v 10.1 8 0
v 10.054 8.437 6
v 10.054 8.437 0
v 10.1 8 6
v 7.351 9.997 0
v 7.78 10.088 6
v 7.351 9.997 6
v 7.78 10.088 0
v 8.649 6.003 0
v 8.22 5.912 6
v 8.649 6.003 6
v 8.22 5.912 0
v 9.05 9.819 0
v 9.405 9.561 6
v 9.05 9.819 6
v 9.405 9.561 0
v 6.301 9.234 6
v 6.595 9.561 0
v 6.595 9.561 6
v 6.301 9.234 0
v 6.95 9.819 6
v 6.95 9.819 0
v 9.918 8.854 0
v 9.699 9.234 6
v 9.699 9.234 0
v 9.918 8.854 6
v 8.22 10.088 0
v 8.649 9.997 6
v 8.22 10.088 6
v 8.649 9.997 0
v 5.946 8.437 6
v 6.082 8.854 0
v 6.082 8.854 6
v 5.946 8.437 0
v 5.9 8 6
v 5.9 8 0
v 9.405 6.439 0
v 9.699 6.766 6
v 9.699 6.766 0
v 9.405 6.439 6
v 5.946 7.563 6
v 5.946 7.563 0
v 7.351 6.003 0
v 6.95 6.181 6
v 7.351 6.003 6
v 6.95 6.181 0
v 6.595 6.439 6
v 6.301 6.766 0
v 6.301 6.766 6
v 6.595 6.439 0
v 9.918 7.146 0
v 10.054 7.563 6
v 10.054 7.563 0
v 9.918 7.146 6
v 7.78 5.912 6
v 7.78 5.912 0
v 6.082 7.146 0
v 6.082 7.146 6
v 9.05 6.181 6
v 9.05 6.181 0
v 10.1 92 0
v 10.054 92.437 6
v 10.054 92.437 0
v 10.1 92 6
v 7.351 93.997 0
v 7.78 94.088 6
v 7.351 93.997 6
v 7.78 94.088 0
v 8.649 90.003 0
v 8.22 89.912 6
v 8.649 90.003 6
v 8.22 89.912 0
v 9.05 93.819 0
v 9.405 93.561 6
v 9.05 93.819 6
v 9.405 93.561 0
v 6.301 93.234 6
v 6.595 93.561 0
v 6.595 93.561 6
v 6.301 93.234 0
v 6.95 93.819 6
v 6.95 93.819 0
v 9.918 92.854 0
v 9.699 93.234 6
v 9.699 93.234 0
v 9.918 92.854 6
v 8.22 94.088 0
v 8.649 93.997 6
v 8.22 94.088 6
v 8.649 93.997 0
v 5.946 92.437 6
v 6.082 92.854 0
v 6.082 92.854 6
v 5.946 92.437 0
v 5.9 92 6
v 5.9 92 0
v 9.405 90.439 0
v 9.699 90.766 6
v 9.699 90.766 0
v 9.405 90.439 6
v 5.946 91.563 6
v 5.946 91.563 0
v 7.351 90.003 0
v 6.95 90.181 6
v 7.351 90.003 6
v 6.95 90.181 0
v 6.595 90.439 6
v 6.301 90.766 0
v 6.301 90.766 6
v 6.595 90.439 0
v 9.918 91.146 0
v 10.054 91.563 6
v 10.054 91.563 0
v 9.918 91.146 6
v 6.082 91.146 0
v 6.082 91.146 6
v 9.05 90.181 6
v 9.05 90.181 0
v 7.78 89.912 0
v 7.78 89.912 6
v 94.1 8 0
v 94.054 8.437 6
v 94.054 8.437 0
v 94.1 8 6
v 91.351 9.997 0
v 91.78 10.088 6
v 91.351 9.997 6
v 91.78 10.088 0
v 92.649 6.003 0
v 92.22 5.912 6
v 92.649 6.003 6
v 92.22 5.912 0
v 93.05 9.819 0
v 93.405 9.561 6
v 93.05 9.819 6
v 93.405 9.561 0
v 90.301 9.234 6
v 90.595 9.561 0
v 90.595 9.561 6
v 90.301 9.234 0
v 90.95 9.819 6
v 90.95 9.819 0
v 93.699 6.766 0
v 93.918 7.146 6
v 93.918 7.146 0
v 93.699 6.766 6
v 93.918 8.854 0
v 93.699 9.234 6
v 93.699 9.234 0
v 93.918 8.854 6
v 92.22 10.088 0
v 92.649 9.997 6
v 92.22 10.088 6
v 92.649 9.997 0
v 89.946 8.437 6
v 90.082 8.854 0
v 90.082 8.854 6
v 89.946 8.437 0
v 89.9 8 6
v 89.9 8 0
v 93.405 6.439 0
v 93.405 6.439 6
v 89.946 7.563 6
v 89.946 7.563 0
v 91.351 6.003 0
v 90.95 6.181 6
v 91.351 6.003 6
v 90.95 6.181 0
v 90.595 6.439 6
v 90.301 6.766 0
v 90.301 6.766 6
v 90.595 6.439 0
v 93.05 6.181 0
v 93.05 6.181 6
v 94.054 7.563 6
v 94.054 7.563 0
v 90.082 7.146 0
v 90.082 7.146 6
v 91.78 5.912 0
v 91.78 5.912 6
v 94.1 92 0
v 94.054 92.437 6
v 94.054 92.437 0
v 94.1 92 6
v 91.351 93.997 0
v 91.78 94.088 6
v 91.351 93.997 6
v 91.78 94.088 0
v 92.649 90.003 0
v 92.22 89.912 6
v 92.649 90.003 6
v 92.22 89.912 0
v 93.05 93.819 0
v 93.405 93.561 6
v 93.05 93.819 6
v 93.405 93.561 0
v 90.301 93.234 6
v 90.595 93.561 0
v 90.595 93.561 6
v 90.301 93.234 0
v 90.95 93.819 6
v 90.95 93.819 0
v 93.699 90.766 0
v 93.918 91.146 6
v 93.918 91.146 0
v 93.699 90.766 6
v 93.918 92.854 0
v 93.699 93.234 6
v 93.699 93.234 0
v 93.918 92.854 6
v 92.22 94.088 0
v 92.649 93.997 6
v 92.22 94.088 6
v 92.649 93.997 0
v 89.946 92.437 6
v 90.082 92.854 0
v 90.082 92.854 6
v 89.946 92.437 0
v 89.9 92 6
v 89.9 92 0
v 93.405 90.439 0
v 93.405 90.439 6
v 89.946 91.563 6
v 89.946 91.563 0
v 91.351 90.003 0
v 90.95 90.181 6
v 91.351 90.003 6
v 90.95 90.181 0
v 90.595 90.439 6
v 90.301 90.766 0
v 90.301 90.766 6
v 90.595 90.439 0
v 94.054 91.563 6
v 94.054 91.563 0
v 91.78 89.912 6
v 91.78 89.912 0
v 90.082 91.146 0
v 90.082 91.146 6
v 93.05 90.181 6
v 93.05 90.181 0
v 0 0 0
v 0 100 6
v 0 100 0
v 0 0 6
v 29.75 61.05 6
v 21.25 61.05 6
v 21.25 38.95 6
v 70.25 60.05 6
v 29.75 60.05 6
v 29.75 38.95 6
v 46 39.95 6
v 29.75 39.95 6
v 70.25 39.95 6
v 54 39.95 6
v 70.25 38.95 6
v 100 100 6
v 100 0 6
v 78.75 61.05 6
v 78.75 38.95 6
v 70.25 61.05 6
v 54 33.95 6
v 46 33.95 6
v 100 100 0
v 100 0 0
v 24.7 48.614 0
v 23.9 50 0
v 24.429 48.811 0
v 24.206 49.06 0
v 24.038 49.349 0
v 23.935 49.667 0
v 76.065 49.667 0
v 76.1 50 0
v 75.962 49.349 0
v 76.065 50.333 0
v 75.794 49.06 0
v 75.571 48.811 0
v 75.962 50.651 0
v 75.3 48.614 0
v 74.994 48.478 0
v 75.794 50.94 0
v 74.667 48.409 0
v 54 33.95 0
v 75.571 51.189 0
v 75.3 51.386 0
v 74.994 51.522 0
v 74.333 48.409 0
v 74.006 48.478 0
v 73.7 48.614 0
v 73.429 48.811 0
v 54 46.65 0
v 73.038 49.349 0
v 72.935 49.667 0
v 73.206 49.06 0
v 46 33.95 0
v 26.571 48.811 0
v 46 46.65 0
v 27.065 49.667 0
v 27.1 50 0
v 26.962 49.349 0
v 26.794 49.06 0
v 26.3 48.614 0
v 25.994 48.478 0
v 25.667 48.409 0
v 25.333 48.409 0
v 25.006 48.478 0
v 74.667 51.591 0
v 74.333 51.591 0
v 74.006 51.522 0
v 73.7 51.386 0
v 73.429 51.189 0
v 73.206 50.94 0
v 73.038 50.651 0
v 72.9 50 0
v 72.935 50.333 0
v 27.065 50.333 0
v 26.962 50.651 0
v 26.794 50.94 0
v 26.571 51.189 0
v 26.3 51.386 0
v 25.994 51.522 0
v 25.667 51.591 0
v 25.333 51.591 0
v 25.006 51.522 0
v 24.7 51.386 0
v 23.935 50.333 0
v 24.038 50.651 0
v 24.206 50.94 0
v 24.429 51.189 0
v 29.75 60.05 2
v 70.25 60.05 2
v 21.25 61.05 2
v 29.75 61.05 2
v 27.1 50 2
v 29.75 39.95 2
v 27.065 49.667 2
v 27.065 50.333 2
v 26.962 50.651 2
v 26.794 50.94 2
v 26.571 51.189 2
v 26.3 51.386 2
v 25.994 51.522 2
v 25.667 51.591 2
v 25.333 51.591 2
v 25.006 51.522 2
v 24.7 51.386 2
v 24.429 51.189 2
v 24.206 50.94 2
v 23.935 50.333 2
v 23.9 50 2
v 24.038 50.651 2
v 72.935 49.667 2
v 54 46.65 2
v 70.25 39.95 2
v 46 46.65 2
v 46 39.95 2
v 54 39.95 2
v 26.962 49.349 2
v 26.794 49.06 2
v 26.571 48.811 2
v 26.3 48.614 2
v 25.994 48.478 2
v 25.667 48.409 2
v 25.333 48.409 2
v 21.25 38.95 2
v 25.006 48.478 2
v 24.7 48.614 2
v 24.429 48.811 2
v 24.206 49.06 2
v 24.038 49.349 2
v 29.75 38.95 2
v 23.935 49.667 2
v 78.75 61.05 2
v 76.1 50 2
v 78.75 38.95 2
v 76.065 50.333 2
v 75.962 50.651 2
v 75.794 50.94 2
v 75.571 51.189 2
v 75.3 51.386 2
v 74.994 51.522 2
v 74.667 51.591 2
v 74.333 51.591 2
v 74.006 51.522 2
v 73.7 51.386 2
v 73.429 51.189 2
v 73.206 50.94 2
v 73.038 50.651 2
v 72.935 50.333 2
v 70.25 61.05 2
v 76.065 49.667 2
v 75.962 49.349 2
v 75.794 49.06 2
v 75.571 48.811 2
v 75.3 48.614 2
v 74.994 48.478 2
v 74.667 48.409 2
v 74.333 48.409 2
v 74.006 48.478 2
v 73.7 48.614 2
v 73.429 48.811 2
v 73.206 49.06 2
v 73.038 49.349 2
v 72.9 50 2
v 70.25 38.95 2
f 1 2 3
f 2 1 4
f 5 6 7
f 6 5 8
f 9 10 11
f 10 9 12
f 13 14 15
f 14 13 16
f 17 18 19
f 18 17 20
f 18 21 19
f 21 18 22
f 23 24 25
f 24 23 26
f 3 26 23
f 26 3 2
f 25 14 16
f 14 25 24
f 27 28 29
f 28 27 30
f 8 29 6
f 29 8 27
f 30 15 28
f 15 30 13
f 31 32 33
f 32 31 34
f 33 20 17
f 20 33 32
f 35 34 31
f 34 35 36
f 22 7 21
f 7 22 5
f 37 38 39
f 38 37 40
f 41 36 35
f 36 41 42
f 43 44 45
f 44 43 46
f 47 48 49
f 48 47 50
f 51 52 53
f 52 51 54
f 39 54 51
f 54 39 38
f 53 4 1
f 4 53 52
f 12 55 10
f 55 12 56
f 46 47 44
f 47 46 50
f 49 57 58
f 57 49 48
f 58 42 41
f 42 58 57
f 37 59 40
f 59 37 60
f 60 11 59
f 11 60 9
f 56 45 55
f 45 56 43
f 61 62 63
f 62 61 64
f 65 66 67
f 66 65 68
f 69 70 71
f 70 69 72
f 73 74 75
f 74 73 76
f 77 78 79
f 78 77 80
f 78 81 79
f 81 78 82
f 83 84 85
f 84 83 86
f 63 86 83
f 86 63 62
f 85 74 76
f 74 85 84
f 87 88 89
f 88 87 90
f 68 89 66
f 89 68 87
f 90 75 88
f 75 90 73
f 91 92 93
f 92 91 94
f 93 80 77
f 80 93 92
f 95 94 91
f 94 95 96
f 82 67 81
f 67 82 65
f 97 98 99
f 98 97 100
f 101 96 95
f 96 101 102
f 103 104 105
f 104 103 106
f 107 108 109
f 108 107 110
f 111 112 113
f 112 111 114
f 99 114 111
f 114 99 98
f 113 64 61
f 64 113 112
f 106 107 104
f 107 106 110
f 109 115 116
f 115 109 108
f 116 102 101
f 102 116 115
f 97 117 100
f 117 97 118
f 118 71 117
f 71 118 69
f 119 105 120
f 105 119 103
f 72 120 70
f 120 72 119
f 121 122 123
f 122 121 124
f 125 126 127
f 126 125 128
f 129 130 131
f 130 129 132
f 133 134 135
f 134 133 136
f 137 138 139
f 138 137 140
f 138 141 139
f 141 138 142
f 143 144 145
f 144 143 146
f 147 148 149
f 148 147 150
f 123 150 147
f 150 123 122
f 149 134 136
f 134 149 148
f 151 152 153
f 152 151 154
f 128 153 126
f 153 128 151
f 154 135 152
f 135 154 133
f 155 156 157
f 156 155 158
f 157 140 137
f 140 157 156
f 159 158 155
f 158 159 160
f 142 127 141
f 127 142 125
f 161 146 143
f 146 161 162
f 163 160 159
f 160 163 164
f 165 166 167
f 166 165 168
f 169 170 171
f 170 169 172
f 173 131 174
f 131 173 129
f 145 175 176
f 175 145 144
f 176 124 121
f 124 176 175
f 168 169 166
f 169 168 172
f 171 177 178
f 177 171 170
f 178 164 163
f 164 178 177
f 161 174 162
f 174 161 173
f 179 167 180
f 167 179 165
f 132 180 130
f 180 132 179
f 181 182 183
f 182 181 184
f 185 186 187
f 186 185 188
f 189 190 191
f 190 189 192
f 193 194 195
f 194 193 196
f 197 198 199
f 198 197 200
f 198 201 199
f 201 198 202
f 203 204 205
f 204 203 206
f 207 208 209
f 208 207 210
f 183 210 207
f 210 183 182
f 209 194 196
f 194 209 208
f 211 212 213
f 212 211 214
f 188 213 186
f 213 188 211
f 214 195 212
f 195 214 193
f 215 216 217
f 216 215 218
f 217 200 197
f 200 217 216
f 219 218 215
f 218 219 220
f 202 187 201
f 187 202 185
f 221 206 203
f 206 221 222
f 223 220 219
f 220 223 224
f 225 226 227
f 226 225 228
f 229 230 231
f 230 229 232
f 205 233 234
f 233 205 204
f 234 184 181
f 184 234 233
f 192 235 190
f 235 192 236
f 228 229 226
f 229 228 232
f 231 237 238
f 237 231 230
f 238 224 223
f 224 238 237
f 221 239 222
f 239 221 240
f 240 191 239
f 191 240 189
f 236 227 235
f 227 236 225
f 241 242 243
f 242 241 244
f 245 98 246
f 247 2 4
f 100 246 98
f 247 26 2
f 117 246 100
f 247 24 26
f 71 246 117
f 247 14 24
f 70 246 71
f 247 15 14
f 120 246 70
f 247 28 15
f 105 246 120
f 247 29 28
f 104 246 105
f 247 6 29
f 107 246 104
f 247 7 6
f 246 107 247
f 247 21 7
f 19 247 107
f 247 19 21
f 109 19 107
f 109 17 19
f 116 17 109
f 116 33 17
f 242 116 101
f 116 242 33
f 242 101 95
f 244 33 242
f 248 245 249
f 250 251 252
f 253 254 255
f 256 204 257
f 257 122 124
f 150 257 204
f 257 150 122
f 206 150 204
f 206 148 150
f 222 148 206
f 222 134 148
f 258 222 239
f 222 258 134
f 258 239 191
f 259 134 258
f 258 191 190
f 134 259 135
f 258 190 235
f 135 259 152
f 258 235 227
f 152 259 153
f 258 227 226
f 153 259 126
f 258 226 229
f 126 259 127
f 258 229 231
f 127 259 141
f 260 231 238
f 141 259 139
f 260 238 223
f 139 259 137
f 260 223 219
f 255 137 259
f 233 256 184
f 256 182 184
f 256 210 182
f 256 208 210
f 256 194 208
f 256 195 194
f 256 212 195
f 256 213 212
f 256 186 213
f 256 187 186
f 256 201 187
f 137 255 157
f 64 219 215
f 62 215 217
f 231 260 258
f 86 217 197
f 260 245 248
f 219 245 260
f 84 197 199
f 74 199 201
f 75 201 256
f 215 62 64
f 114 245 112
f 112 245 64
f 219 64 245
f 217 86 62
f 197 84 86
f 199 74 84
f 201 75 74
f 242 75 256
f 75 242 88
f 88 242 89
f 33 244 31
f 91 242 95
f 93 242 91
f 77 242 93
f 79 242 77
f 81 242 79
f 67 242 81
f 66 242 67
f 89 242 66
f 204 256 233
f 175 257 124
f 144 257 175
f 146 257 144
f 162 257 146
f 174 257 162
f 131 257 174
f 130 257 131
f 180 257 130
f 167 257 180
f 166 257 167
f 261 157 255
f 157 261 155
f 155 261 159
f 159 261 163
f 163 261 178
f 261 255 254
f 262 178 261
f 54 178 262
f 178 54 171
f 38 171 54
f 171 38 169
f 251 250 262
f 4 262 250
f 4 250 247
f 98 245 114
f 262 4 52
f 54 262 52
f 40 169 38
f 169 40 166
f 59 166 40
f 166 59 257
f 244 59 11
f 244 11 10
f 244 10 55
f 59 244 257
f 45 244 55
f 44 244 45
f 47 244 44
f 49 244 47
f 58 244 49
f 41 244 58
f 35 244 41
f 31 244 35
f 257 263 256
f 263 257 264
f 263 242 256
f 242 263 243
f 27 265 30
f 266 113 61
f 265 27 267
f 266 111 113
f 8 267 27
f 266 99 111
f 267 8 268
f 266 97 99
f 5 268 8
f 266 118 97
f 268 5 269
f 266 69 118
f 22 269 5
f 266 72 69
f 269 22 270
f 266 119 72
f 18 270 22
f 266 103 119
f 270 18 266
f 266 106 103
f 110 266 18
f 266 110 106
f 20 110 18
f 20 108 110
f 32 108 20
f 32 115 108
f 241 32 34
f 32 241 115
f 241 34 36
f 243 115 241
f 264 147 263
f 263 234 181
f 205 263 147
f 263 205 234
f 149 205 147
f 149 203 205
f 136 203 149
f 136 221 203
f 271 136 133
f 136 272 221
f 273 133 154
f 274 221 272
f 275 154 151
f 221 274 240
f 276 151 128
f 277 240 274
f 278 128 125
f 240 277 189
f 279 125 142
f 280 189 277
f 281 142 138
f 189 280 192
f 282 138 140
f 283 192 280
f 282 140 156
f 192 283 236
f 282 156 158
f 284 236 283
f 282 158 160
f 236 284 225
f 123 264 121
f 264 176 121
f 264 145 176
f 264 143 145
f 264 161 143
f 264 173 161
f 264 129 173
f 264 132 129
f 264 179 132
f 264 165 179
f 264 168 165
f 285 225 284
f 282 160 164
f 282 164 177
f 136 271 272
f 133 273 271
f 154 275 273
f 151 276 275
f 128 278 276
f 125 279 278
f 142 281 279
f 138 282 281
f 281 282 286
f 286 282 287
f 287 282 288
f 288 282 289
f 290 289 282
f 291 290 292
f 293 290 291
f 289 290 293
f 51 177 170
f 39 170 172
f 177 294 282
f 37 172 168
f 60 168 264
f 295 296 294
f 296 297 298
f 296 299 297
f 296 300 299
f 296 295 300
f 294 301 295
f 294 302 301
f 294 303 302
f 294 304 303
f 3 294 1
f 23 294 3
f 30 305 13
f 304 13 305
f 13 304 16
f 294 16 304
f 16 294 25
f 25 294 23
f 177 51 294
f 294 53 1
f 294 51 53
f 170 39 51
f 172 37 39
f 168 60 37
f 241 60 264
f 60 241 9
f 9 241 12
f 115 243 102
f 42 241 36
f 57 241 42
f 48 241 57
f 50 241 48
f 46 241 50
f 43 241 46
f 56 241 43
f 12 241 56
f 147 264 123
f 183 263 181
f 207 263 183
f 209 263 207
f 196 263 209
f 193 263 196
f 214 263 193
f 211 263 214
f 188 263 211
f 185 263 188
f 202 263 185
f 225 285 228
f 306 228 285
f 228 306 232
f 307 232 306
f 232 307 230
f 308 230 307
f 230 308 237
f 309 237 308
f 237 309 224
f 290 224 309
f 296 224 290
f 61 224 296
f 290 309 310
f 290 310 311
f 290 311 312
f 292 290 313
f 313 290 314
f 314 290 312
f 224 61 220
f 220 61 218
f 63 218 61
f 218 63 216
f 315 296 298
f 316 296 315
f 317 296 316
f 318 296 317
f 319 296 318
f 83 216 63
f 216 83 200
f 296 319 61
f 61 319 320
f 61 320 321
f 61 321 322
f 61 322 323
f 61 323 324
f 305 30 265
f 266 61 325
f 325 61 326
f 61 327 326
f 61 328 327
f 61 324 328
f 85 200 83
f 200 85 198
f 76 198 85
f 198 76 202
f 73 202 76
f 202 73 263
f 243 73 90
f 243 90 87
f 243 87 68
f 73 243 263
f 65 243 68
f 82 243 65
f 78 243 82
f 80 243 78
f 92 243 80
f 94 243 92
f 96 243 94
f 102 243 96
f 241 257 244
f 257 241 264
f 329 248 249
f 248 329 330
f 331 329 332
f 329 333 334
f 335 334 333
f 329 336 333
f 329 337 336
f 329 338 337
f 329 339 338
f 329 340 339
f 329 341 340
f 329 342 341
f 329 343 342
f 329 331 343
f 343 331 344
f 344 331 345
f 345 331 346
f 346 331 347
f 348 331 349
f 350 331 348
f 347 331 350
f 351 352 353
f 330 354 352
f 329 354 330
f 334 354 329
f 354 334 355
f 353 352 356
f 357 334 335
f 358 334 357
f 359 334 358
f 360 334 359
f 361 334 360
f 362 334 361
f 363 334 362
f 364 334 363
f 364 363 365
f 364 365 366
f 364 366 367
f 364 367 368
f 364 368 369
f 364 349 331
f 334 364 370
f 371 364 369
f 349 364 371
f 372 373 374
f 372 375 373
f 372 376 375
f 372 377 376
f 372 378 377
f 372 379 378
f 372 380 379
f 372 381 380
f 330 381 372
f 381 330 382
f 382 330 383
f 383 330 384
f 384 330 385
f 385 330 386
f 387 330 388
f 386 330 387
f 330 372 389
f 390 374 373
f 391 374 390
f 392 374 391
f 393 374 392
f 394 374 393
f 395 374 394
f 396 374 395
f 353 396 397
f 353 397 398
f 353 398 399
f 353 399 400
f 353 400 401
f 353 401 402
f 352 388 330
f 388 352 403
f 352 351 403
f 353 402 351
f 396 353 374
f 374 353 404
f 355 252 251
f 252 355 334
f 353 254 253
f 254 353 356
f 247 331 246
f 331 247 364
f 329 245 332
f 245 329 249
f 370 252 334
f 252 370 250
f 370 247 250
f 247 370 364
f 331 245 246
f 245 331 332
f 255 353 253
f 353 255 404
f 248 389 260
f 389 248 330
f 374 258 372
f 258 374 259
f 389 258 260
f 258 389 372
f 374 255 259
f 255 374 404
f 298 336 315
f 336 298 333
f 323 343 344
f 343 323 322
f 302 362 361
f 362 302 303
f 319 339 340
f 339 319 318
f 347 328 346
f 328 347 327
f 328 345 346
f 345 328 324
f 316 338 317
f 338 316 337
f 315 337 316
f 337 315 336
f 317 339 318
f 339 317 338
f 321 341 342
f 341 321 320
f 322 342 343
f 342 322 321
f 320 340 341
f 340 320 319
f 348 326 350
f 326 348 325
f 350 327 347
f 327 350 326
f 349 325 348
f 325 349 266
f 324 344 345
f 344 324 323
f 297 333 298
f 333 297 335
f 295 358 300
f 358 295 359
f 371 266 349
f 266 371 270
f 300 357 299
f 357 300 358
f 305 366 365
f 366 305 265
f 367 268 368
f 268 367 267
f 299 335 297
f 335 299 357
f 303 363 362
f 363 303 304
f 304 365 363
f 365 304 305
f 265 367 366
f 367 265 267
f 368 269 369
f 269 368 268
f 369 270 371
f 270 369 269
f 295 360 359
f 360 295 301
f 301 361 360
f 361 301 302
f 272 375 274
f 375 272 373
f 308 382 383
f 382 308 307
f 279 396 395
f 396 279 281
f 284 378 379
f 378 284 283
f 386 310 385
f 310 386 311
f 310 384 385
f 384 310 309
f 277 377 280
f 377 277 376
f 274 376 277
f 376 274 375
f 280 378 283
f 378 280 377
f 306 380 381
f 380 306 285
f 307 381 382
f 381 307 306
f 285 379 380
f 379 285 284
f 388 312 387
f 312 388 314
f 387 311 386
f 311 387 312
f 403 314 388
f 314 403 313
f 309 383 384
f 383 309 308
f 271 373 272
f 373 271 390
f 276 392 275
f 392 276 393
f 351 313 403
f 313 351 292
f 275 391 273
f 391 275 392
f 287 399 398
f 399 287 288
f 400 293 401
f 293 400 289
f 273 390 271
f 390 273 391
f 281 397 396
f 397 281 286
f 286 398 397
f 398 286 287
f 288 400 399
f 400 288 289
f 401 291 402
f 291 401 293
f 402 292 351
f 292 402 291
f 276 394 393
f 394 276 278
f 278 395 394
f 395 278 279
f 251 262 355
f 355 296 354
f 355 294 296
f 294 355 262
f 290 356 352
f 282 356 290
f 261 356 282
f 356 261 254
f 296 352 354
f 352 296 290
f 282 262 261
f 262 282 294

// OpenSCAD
// ============================================================
// Part 1: Base Plate
// Remote Surgical Training Arm — Jaycar Servo Edition
// ============================================================
// Print: flat (bottom face down), no supports, ~45 min, ~30g
// ============================================================

// === MEASURE YOUR YM2765 WITH CALIPERS AND UPDATE THESE ===
servo_body_w   = 40.7;   // YM2765 body width (mm) — long side
servo_body_d   = 19.7;   // YM2765 body depth (mm) — short side
servo_body_h   = 42.9;   // YM2765 body height (mm) — NOT used for pocket depth here
servo_tab_cc   = 49.0;   // mounting tab hole centre-to-centre (mm) — MEASURE THIS
servo_tab_w    = 7.5;    // width of each mounting tab beyond body
servo_tab_h    = 2.5;    // tab thickness
tolerance      = 0.2;    // clearance per side for pocket fit

// Plate dimensions
plate_w        = 100;    // plate width (X)
plate_d        = 100;    // plate depth (Y)
plate_h        = 6;      // plate thickness (Z)

// Servo pocket — servo drops in from top, body hangs below plate
// Pocket only needs to be deep enough to capture the tabs & top of body
pocket_depth   = 4;      // depth of pocket from top surface

// Shaft position — the YM2765 output shaft is offset from body centre
// On most standard servos, shaft is ~10mm from one end of the body
shaft_offset_x = 10.0;   // shaft centre from edge of body (along width axis)

// M4 corner holes for table clamping
m4_hole_dia    = 4.2;
m4_inset       = 8;      // distance from edge to hole centre

// M3 tab mounting holes
m3_hole_dia    = 3.2;

// Cable exit slot (rear of pocket, through to bottom)
cable_slot_w   = 8;
cable_slot_d   = 6;

// === DERIVED ===
pocket_w = servo_body_w + tolerance * 2;
pocket_d = servo_body_d + tolerance * 2;

// Tab slot dimensions (slots in plate for mounting ears)
tab_slot_w = servo_tab_w + 1;  // extra clearance for tabs
tab_slot_d = servo_body_d + tolerance * 2 + 2;  // slightly wider than pocket

module base_plate() {
    difference() {
        // Main plate body
        cube([plate_w, plate_d, plate_h]);
        
        // --- Servo pocket (centred on plate) ---
        translate([
            (plate_w - pocket_w) / 2,
            (plate_d - pocket_d) / 2,
            plate_h - pocket_depth
        ])
            cube([pocket_w, pocket_d, pocket_depth + 1]);  // +1 to cut through top
        
        // --- Tab slots on each side of pocket ---
        // Tabs extend along the width axis (long side of servo)
        // Left tab slot
        translate([
            (plate_w - servo_tab_cc) / 2 - tab_slot_w / 2,
            (plate_d - tab_slot_d) / 2,
            plate_h - pocket_depth
        ])
            cube([tab_slot_w, tab_slot_d, pocket_depth + 1]);
        
        // Right tab slot
        translate([
            (plate_w + servo_tab_cc) / 2 - tab_slot_w / 2,
            (plate_d - tab_slot_d) / 2,
            plate_h - pocket_depth
        ])
            cube([tab_slot_w, tab_slot_d, pocket_depth + 1]);
        
        // --- M3 tab mounting holes (through plate) ---
        // Left tab hole
        translate([
            (plate_w - servo_tab_cc) / 2,
            plate_d / 2,
            -1
        ])
            cylinder(h = plate_h + 2, d = m3_hole_dia, $fn = 30);
        
        // Right tab hole
        translate([
            (plate_w + servo_tab_cc) / 2,
            plate_d / 2,
            -1
        ])
            cylinder(h = plate_h + 2, d = m3_hole_dia, $fn = 30);
        
        // --- M4 corner holes ---
        for (x = [m4_inset, plate_w - m4_inset])
            for (y = [m4_inset, plate_d - m4_inset])
                translate([x, y, -1])
                    cylinder(h = plate_h + 2, d = m4_hole_dia, $fn = 30);
        
        // --- Cable exit slot (rear of pocket, through entire plate) ---
        translate([
            (plate_w - cable_slot_w) / 2,
            (plate_d - pocket_d) / 2 - cable_slot_d,
            -1
        ])
            cube([cable_slot_w, cable_slot_d + pocket_d / 3, plate_h + 2]);
    }
}

base_plate();
